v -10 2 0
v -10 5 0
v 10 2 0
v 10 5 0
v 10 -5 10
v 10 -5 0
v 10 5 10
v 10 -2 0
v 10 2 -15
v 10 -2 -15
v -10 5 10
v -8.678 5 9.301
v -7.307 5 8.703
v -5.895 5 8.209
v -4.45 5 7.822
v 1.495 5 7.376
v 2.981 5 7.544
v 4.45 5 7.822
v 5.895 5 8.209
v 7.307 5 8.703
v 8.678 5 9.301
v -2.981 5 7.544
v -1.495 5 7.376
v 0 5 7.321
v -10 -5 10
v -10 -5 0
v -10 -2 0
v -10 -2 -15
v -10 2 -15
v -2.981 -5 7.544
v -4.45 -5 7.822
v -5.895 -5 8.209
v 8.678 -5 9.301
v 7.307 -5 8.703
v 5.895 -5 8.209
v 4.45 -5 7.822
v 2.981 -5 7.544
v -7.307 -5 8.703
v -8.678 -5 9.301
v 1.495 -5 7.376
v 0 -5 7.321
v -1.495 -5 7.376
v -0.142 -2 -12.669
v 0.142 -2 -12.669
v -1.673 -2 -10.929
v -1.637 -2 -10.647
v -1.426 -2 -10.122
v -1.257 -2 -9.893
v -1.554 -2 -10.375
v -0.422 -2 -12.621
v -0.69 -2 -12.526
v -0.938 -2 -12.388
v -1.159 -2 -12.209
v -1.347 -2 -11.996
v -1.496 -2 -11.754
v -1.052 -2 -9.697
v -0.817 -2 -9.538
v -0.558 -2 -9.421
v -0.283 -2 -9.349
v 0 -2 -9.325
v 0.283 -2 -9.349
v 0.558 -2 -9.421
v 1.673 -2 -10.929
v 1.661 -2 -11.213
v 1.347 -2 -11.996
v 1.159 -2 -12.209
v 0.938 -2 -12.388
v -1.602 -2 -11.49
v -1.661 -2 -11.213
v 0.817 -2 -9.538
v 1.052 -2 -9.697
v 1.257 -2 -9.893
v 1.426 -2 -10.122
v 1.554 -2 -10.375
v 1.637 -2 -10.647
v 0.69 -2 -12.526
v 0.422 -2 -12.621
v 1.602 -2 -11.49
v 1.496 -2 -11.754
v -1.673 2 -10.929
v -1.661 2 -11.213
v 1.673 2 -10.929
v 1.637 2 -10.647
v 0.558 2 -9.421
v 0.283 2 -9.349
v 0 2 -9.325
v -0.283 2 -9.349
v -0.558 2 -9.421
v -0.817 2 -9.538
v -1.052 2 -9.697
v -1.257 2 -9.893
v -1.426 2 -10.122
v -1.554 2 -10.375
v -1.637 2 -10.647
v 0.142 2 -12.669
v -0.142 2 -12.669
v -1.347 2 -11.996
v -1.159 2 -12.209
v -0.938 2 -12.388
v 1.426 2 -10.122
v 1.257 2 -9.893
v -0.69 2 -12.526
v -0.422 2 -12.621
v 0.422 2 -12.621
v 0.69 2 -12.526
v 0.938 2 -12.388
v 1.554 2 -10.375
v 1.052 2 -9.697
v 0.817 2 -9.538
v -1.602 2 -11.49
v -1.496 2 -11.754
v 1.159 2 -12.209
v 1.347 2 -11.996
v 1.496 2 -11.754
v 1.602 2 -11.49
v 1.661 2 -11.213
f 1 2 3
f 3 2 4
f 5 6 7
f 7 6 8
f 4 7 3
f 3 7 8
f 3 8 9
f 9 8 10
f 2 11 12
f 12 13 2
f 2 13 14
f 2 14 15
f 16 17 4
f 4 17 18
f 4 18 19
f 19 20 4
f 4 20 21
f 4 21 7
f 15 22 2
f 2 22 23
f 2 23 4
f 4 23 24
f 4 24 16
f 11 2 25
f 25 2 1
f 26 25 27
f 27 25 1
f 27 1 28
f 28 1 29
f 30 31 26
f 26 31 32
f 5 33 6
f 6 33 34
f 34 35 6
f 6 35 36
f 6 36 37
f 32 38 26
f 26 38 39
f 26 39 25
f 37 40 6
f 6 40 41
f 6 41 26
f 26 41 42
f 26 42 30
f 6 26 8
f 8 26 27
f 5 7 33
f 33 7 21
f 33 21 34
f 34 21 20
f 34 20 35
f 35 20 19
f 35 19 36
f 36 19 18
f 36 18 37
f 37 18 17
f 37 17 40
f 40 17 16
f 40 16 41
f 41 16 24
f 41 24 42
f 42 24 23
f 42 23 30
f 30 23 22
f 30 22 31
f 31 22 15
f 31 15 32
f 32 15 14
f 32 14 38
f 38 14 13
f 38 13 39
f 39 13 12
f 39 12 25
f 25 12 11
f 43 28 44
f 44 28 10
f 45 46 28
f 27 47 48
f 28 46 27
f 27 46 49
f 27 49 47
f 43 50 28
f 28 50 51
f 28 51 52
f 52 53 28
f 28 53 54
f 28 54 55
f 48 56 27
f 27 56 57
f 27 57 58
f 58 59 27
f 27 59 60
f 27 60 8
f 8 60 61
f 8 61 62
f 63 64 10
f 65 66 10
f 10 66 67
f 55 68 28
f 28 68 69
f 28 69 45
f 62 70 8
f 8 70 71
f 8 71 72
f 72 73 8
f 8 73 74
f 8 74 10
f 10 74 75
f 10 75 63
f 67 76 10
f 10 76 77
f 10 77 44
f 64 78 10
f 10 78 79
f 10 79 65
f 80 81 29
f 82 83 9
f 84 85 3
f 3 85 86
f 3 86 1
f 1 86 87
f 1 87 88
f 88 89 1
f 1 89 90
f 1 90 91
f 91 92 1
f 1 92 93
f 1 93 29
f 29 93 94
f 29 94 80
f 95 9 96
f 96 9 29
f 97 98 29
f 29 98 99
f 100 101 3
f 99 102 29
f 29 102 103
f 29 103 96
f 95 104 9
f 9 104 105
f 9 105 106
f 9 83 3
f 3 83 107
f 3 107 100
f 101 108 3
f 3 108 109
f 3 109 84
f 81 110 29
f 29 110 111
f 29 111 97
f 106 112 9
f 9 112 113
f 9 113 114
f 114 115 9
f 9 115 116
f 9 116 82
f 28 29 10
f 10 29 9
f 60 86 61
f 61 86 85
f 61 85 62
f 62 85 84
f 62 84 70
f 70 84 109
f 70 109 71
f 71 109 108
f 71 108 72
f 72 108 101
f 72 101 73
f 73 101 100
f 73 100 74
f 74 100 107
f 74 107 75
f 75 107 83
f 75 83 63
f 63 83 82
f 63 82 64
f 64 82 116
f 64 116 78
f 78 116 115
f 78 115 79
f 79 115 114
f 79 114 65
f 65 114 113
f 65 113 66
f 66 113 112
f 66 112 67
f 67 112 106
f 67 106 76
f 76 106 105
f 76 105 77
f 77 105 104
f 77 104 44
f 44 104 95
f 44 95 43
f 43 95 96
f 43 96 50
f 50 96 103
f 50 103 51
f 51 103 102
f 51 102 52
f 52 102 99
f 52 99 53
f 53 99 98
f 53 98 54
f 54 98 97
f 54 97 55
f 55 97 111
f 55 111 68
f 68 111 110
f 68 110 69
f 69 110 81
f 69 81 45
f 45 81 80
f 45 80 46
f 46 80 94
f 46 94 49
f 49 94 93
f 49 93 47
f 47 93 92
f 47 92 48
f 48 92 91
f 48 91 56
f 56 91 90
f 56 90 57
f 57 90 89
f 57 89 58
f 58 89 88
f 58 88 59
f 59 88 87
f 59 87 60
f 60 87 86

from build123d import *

# Parameters (mm, degrees)
SKETCH1_W                       = 20
SKETCH1_H                       = 10
BOSS_EXTRUDE1_DEPTH             = 10
CUT_EXTRUDE1_DEPTH              = 10
SKETCH3_W                       = 20
SKETCH3_H                       = 4
BOSS_EXTRUDE2_DEPTH             = 15
TAP_DRILL_FOR_M3X0_5_TAP6_D     = 3.35
TAP_DRILL_FOR_M3X0_5_TAP6_DEPTH = 4


with BuildPart() as part:
    # Sketch1 → Boss-Extrude1 (new body)
    with BuildSketch(Plane.XY):
        Rectangle(SKETCH1_W, SKETCH1_H)
    extrude(amount=BOSS_EXTRUDE1_DEPTH)

    # Sketch2 → Cut-Extrude1 (cut)
    with BuildSketch(Plane(origin=(0, 5, 0), x_dir=(1, 0, 0), z_dir=(0, 1, 0))):
        with BuildLine():
            Line((-10, -10), (10, -10))
            ThreePointArc((10, -10), (0, -7.320508076), (-10, -10))
        make_face()
    extrude(amount=-CUT_EXTRUDE1_DEPTH, mode=Mode.SUBTRACT)

    # Sketch3 → Boss-Extrude2 (add)
    with BuildSketch(Plane(origin=(0, 0, 0), x_dir=(-1, 0, 0), z_dir=(0, 0, -1))):
        Rectangle(SKETCH3_W, SKETCH3_H)
    extrude(amount=BOSS_EXTRUDE2_DEPTH)

    # Tap Drill for M3x0.5 Tap6
    with Locations(Plane(origin=(0, 2, 0), x_dir=(1, 0, 0), z_dir=(0, 1, 0))):
        with Locations((0, 11)):
            Hole(TAP_DRILL_FOR_M3X0_5_TAP6_D / 2, depth=TAP_DRILL_FOR_M3X0_5_TAP6_DEPTH)


solid = part.part
